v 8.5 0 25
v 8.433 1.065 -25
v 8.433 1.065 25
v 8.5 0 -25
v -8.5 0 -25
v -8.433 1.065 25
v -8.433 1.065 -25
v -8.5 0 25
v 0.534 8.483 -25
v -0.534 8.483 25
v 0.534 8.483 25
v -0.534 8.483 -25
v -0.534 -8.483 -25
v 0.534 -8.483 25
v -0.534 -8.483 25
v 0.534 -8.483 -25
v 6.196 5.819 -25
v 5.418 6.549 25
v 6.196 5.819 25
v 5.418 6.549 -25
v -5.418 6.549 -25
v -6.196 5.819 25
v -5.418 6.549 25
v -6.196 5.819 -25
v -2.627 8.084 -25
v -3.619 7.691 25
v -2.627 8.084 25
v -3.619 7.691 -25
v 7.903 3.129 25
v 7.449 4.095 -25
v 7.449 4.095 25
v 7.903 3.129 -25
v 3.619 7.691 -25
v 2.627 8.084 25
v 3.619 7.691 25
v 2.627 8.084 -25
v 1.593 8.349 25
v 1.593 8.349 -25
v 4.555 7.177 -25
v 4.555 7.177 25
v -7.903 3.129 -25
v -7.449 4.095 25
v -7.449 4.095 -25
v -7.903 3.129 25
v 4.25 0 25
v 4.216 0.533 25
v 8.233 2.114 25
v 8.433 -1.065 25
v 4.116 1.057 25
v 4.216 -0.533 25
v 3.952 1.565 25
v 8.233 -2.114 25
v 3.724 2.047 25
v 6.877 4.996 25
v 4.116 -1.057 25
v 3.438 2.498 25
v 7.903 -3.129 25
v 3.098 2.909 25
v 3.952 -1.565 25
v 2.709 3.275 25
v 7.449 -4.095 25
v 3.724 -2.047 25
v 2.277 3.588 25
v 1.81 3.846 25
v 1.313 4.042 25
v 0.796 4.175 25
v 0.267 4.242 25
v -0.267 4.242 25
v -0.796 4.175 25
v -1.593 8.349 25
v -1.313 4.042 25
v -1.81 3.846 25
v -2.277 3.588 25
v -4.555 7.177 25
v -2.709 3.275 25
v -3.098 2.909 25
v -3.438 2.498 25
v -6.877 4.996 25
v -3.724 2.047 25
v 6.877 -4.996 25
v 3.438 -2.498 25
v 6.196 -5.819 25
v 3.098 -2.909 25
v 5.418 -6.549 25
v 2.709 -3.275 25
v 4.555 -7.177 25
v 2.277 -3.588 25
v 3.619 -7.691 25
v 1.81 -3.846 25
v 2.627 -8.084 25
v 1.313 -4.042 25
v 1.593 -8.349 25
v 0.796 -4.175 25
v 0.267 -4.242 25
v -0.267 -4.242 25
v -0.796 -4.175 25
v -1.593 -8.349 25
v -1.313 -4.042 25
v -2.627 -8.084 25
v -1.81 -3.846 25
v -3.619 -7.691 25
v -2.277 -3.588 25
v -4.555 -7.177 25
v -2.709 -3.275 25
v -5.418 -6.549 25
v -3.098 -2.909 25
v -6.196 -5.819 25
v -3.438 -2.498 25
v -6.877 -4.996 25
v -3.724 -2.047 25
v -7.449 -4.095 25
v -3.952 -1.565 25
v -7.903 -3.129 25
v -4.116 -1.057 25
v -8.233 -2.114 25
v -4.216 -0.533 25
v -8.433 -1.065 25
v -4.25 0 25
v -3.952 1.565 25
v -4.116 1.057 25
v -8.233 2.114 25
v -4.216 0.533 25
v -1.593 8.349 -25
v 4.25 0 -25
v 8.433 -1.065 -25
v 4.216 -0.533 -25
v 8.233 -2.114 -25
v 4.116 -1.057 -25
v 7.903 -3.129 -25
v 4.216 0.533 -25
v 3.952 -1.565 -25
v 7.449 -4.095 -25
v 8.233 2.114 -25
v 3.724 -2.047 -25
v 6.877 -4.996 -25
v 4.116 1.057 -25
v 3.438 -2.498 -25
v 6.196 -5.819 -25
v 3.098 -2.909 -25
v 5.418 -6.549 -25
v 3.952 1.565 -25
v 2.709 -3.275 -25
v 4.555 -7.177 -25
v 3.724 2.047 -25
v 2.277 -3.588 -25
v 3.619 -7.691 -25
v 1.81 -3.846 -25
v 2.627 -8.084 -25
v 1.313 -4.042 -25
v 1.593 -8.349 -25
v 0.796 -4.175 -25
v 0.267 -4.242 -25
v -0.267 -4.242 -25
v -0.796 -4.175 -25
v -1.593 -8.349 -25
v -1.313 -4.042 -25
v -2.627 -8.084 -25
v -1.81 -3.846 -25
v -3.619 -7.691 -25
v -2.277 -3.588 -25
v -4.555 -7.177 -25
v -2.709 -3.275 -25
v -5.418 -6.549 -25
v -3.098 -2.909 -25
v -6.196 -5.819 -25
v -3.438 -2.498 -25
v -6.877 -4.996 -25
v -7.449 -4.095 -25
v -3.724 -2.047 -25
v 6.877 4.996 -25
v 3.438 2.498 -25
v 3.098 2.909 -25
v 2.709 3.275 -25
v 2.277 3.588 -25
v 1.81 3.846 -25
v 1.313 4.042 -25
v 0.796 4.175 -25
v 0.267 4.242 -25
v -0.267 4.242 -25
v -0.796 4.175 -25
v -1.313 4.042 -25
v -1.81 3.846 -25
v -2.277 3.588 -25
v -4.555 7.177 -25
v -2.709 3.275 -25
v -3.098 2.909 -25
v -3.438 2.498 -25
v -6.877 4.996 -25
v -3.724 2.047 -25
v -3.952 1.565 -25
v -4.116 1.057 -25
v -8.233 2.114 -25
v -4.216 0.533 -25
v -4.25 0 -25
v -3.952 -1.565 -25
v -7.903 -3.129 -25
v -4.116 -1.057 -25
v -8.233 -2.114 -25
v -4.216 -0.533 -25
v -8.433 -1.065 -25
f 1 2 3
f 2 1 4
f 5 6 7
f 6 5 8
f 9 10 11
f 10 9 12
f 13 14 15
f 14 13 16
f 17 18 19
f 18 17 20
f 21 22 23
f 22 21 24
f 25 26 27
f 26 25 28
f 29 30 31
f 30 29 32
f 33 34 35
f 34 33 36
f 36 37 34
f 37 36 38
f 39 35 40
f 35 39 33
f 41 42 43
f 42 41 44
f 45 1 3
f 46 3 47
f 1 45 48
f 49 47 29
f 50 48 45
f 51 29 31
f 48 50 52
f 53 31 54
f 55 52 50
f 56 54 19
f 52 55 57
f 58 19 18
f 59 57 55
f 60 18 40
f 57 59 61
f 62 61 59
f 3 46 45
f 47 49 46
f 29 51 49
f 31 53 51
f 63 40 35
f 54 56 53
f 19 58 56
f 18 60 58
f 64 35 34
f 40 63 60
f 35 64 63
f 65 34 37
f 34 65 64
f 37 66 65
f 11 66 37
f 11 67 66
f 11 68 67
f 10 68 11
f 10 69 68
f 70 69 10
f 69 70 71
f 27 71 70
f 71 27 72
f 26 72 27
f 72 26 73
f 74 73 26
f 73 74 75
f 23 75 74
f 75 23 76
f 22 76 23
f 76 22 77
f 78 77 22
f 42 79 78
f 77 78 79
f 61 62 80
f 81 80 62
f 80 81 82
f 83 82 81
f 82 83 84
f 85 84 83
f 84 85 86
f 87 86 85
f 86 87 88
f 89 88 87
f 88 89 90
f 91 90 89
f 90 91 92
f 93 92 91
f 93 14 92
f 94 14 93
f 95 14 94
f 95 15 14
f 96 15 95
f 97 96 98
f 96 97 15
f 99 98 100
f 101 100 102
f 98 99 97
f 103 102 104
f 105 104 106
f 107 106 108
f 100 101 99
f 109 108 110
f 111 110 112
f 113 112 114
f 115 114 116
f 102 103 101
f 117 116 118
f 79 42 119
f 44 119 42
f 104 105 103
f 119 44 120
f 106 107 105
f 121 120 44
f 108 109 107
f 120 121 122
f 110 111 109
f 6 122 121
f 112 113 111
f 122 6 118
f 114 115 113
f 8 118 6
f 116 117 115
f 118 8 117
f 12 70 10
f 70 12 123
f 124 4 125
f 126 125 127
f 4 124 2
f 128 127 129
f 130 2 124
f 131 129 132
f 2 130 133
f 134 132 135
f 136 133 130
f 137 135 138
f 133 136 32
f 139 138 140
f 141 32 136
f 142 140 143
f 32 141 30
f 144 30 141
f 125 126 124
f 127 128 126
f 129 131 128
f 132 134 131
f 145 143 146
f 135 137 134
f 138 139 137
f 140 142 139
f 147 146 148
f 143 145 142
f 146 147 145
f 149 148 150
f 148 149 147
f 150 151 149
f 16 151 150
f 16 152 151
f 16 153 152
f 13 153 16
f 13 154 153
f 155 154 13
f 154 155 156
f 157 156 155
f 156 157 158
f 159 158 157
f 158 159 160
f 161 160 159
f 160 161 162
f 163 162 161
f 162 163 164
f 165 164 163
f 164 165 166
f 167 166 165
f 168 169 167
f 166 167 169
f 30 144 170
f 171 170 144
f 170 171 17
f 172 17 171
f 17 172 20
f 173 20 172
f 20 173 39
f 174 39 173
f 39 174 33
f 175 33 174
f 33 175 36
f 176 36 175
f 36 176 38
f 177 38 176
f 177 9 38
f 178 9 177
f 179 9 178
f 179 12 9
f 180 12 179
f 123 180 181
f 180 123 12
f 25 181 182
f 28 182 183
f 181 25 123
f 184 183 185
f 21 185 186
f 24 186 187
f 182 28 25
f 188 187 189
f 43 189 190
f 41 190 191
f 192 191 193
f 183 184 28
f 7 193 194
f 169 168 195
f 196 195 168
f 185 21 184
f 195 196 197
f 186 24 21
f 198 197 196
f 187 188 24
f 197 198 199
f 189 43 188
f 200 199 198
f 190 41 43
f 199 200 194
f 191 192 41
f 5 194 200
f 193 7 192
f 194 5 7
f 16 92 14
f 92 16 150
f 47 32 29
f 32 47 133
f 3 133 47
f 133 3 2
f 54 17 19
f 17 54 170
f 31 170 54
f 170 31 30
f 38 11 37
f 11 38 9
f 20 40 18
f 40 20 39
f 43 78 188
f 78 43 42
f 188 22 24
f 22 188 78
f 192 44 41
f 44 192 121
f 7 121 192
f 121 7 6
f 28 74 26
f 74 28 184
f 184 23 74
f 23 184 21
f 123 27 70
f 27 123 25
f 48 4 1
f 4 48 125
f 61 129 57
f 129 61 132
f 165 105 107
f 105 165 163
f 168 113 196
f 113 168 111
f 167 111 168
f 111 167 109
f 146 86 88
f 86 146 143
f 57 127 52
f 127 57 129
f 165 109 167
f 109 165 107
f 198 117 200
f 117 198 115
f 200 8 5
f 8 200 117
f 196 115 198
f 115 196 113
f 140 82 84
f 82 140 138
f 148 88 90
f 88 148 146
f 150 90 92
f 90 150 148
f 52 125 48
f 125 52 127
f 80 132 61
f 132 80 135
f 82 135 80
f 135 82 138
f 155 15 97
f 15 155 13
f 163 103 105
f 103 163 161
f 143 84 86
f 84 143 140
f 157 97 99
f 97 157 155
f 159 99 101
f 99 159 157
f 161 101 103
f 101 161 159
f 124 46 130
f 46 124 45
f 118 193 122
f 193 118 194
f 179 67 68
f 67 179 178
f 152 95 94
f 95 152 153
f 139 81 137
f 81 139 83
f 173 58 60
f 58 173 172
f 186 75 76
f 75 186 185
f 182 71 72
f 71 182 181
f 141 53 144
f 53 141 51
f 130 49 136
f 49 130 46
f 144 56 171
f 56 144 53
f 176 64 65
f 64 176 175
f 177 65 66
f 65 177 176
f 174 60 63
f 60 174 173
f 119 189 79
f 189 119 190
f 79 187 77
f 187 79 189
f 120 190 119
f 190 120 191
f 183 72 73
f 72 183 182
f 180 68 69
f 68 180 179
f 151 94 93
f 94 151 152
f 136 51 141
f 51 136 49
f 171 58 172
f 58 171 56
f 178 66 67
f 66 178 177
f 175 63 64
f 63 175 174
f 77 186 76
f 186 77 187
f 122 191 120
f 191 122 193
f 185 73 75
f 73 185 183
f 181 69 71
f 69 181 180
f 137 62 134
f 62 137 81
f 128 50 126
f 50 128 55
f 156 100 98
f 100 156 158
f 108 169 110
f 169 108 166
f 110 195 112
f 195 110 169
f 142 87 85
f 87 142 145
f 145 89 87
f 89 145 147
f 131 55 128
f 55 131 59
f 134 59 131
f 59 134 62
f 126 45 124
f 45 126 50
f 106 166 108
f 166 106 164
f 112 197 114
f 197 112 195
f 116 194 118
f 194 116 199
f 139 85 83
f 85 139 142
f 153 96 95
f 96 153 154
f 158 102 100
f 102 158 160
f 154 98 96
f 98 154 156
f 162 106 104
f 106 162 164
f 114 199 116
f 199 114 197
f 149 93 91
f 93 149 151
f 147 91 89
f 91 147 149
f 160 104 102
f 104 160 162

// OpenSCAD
$fn = 50;


difference() {
	union() {
		translate(v = [0, 0, -25.0000000000]) {
			cylinder(h = 50, r = 8.5000000000);
		}
	}
	union() {
		translate(v = [0, 0, -100.0000000000]) {
			cylinder(h = 200, r = 4.2500000000);
		}
	}
}
